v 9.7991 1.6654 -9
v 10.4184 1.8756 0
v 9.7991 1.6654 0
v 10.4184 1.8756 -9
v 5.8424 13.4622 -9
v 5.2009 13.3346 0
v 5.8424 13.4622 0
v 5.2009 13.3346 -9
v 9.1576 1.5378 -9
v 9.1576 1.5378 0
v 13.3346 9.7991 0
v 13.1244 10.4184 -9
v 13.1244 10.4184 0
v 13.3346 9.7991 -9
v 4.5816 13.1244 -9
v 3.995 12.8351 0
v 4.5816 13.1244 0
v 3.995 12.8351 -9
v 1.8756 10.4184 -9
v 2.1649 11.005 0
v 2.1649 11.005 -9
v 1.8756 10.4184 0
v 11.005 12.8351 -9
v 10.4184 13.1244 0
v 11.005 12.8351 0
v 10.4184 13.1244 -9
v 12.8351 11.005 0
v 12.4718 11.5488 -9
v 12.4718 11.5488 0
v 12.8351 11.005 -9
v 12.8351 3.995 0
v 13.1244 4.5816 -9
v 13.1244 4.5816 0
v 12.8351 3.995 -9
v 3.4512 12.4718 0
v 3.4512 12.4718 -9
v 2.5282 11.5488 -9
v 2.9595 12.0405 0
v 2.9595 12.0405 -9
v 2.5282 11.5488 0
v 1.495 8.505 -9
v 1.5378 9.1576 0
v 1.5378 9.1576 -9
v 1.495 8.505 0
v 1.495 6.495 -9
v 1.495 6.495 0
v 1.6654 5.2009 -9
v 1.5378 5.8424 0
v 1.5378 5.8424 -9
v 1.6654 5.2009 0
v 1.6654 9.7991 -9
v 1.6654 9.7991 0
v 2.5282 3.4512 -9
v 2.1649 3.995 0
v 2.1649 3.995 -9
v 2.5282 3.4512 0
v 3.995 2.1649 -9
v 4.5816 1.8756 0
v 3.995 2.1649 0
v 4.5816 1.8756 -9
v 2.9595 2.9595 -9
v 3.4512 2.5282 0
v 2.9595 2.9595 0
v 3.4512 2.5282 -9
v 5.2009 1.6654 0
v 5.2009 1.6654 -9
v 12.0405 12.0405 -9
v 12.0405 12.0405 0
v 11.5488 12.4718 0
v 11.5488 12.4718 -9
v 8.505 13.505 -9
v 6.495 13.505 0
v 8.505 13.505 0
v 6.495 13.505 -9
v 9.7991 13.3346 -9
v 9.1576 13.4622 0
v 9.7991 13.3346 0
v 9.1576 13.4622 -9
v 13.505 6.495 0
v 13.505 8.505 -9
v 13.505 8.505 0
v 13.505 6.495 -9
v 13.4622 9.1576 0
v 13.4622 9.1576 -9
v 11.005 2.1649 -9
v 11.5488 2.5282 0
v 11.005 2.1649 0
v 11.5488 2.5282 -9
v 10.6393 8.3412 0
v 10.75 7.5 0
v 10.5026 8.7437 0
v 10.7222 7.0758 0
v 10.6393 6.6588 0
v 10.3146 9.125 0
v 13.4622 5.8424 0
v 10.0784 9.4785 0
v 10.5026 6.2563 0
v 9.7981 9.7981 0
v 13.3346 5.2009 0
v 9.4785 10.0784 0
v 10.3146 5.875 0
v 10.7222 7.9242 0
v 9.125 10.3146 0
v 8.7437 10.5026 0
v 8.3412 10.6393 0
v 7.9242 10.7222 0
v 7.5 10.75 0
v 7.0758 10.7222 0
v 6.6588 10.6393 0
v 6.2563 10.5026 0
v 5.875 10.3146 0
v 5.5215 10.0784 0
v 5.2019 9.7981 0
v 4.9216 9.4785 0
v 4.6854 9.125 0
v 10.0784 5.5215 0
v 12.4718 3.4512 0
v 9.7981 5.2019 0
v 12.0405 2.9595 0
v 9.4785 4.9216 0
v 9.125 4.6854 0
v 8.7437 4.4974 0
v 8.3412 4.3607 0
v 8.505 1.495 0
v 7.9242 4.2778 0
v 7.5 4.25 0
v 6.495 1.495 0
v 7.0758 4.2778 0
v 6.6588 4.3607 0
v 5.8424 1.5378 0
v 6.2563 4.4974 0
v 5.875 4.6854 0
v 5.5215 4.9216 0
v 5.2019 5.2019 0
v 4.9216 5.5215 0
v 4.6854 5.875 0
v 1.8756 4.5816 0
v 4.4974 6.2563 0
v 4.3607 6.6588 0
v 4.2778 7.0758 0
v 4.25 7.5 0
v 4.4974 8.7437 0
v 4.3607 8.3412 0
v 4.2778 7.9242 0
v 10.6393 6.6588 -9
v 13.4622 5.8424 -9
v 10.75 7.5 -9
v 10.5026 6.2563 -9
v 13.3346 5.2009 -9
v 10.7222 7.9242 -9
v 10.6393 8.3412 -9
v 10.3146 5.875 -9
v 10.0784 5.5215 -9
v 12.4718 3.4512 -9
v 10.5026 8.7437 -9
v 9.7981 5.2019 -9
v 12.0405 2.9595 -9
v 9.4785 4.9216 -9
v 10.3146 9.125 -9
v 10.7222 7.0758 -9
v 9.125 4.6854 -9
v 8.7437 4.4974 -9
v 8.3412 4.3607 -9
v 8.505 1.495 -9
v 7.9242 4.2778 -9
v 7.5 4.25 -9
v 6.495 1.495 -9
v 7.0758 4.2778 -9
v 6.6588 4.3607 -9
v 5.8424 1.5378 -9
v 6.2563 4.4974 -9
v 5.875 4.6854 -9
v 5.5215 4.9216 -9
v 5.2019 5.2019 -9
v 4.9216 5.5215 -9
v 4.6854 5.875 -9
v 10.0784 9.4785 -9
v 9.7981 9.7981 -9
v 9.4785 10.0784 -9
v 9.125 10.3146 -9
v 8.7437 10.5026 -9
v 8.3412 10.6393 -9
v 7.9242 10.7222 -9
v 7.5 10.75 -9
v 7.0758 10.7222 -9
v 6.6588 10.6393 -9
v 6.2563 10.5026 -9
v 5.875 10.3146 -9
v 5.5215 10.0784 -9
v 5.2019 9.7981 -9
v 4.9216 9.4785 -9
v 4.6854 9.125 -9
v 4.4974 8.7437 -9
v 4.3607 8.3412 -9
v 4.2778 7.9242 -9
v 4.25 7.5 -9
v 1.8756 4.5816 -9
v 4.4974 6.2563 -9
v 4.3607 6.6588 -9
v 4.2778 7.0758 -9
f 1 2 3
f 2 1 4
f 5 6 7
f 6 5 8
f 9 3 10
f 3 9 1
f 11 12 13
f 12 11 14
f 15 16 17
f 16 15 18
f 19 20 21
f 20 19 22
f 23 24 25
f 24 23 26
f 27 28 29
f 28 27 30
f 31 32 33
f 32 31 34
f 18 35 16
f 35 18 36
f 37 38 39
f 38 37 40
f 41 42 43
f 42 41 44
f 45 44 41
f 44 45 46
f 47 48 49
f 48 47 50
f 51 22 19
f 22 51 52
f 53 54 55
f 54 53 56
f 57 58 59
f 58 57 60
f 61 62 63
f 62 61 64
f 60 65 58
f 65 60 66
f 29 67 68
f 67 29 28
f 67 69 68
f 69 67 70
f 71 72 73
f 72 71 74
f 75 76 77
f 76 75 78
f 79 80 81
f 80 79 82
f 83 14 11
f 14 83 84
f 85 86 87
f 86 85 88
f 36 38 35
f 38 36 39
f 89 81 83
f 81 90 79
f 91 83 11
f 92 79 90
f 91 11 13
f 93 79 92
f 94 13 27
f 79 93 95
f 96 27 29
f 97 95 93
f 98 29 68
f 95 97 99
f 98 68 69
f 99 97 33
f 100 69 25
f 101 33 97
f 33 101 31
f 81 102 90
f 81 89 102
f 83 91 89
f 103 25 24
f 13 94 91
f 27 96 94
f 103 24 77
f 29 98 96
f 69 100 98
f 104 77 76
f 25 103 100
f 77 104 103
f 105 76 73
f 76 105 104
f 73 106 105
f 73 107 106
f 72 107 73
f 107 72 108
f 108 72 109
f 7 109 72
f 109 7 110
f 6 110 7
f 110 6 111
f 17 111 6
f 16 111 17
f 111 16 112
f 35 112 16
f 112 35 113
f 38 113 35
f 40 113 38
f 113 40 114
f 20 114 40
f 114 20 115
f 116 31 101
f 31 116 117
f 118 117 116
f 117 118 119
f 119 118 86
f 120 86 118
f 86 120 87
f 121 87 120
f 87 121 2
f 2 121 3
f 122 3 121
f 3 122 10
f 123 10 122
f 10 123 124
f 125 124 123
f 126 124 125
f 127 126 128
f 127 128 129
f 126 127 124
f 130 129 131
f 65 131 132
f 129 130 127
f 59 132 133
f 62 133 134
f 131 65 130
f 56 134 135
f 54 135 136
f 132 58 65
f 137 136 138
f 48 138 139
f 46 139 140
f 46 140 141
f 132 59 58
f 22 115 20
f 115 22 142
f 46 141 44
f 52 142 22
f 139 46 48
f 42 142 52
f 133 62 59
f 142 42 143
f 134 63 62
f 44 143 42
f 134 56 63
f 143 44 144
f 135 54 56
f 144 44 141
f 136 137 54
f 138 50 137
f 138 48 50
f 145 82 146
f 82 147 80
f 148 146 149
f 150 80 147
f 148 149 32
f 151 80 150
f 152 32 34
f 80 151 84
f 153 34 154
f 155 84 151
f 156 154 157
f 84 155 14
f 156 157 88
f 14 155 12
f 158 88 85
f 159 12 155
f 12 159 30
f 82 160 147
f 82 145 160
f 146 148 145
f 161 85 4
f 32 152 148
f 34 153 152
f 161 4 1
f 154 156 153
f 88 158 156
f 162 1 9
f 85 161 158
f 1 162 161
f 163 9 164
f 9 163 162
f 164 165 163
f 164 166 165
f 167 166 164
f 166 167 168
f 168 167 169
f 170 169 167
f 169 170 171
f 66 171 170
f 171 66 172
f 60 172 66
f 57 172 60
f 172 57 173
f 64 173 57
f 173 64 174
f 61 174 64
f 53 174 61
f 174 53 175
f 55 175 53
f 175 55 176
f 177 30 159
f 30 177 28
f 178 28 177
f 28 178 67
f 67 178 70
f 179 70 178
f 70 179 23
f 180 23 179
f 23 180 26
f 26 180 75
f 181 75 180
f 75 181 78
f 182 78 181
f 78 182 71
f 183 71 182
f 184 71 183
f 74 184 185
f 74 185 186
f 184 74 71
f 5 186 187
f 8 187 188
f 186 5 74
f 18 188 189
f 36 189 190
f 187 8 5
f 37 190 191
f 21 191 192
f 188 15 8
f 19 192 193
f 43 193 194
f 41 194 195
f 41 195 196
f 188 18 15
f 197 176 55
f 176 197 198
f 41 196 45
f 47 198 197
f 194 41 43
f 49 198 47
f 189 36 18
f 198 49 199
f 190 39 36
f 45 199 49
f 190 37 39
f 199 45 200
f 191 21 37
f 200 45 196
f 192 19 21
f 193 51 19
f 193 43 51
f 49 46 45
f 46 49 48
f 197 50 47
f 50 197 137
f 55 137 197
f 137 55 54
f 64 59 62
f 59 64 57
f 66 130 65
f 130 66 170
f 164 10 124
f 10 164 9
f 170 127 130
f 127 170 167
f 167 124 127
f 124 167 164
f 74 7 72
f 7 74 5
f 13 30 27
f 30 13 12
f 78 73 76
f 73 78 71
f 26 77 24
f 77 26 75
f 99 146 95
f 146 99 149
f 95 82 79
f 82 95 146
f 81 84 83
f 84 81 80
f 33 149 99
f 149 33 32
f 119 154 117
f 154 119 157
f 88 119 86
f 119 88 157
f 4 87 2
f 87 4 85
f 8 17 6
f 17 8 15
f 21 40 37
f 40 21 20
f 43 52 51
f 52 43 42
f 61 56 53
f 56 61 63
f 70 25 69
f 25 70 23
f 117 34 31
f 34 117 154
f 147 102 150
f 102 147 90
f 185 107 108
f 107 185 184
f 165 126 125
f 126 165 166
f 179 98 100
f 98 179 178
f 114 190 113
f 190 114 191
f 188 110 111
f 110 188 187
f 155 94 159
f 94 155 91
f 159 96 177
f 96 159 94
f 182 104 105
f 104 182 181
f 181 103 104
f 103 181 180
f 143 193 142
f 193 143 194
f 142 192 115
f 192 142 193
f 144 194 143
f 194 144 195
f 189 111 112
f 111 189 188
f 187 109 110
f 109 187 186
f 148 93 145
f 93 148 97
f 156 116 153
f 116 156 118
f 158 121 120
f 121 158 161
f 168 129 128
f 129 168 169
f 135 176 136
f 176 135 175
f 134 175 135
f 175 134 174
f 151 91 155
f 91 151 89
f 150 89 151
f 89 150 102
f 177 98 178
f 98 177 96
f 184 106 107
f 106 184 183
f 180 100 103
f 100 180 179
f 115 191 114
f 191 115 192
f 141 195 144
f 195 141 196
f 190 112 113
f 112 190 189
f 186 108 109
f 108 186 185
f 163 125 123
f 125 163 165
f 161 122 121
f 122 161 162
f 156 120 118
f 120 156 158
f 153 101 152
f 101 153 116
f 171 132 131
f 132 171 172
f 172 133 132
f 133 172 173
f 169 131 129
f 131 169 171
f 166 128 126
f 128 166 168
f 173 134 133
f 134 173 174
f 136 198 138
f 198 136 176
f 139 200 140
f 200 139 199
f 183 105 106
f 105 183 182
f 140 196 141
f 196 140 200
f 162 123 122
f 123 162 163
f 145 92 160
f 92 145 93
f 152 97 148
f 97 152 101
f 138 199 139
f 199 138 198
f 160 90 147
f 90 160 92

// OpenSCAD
// Generated by SolidPython 1.1.3 on 2022-09-14 11:03:16
$fn = 48;


difference() {
	union() {
		color(alpha = 1.0000000000, c = "Gold") {
			translate(v = [7.5000000000, 7.5000000000, 0]) {
				rotate(a = [0, 0, 0]) {
					translate(v = [0, 0, -9]) {
						linear_extrude(height = 9) {
							offset(r = 5) {
								square(center = true, size = [2.0100000000, 2.0100000000]);
							}
						}
					}
				}
			}
		}
	}
	union() {
		color(alpha = 1.0000000000, c = "Gold") {
			translate(v = [7.5000000000, 7.5000000000, 0]) {
				rotate(a = [0, 0, 0]) {
					translate(v = [0, 0, -250]) {
						cylinder(h = 500, r = 3.2500000000);
					}
				}
			}
		}
	}
}
/***********************************************
*********      SolidPython code:      **********
************************************************
 
import subprocess

from solid.objects import *
from solid import scad_render_to_file, scad_render

import os

##################################################################################################################################################
##################################################################################################################################################
##################################################################################################################################################
##################################################################################################################################################
######  DIMENSION STUFF
##################################################################################################################################################
##################################################################################################################################################
##################################################################################################################################################
##################################################################################################################################################


mode = "3DPR"
#mode = "LAZE"
#mode = "TURE"
#mode = ""


######  Countersunk
countersunkM = []
WIDTH = 0
DEPTH = 1
countersunkM1width = 0; countersunkM1depth = 0; countersunkM2width = 0; countersunkM2depth = 0
countersunkM3width = 0
countersunkM3depth = 0
countersunkM4width = 0
countersunkM4depth = 0
countersunkM5width = 0
countersunkM5depth = 0
countersunkM6width = 0
countersunkM6depth = 0

######  Holes
holeM = []
holeM1 = 0
holeM2 = 0
holeM3 = 0
holeM4 = 0
holeM5 = 0
holeM6 = 0

######  Nuts
nutM = []
NUTWIDTH = 0
NUTDEPTH = 1
nutM1width = 0
nutM1depth = 0
nutM2width = 0
nutM2depth = 0
nutM3width = 0
nutM3depth = 0
nutM4width = 0
nutM4depth = 0
nutM5width = 0
nutM5depth = 0
nutM6width = 0
nutM6depth = 0

######  OOEB
ooebPinWidth = 0
ooebPinWidthWide = 0


######  Colors
colDefault = "Gold"

colOOEBbase = colDefault

colLEDRed = "red"
colWire = "gray"
    ######  Resistor
colRes = list()
colResistor = "beige"

colResBlack = "black"
colRes.append(colResBlack)
colResBrown = "brown"
colRes.append(colResBrown)
colResRed = "red"
colRes.append(colResRed)
colResOrange = "orange"
colRes.append(colResOrange)
colResYellow = "yellow"
colRes.append(colResYellow)
colResGreen = "green"
colRes.append(colResGreen)
colResBlue = "blue"
colRes.append(colResBlue)
colResPurple = "purple"
colRes.append(colResPurple)
colResGray = "gray"
colRes.append(colResGray)
colResWhite = "white"
colRes.append(colResWhite)





def changeMode(m="3DPR"):
    #print("####################################################      CHANGING MODES TO: " + m)
    global mode
    mode = m
    ######  Countersunk
    global countersunkM, countersunkM1width, countersunkM1depth, countersunkM2width, countersunkM2depth, countersunkM3width, countersunkM3depth, countersunkM4width, countersunkM4depth, countersunkM5width, countersunkM5depth, countersunkM6width, countersunkM6depth
    countersunkM = []
    countersunkM.append([0,0])
    countersunkM1width = 0 if mode== "3DPR" else 0
    countersunkM1depth = 0 if mode== "3DPR" else 0
    countersunkM.append([countersunkM1width,countersunkM1depth])
    countersunkM2width = 0 if mode== "3DPR" else 0
    countersunkM2depth = 0 if mode== "3DPR" else 0
    countersunkM.append([countersunkM2width,countersunkM2depth])
    countersunkM3width = 5.5/2+0.6 if mode== "3DPR" else 5.5/2
    countersunkM3depth = 1.7 if mode== "3DPR" else 1.7
    countersunkM.append([countersunkM3width,countersunkM3depth])
    countersunkM4width = 0 if mode== "3DPR" else 0
    countersunkM4depth = 0 if mode== "3DPR" else 0
    countersunkM.append([countersunkM4width,countersunkM4depth])
    countersunkM5width = 0 if mode== "3DPR" else 0
    countersunkM5depth = 0 if mode== "3DPR" else 0
    countersunkM.append([countersunkM5width,countersunkM5depth])
    countersunkM6width = 0 if mode== "3DPR" else 0
    countersunkM6depth = 0 if mode== "3DPR" else 0
    countersunkM.append([countersunkM6width,countersunkM6depth])
    ######  Holes
    global holeM, holeM1, holeM2, holeM3, holeM4, holeM5, holeM6, holeM7, holeM8
    holeM = []
    holeM1 = 1.2/2 if mode== "3DPR" else 1/2
    holeM2 = 2.3/2 if mode== "3DPR" else 2/2
    holeM3 = 3.4/2 if mode== "3DPR" else 3/2
    holeM4 = 4.4/2 if mode== "3DPR" else 4/2
    holeM5 = 5.4/2 if mode== "3DPR" else 5/2
    holeM6 = 6.5/2 if mode== "3DPR" else 6/2
    holeM7 = 7.5/2 if mode== "3DPR" else 7/2
    holeM8 = 8.6/2 if mode== "3DPR" else 8/2
    holeM.append(0)
    holeM.append(holeM1)
    holeM.append(holeM2)
    holeM.append(holeM3)
    holeM.append(holeM4)
    holeM.append(holeM5)
    holeM.append(holeM6)
    holeM.append(holeM7)
    holeM.append(holeM8)
    #####  Nuts
    global nutM, nutM1width, nutM1depth, nutM2width, nutM2depth, nutM3width, nutM3depth, nutM4width, nutM4depth, nutM5width, nutM5depth, nutM6width, nutM6depth
    nutM = []
    nutM.append([0,0]) 
    #M1 Nut
    nutM1width = 0
    nutM1depth = 0
    nutM.append([nutM1width,nutM1depth])    
    #M2 Nut
    nutM2width = 0
    nutM2depth = 0
    nutM.append([nutM2width,nutM2depth])    
    #M3 Nut
    nutM3width = 6.05 if mode== "3DPR" else 5.5
    nutM3depth = 2.5 if mode== "3DPR" else 2.5
    nutM.append([nutM3width,nutM3depth])    
    #M4 Nut
    nutM4width = 0
    nutM4depth = 0
    nutM.append([nutM4width,nutM4depth])    
    #M5 Nut
    nutM5width = 0
    nutM5depth = 0
    nutM.append([nutM5width,nutM5depth])    
    #M6 Nut
    nutM6width = 11 if mode== "3DPR" else 10
    nutM6depth = 5 if mode== "3DPR" else 5
    nutM.append([nutM6width,nutM6depth])    

    ######  OOEB
    global ooebPinWidth,  ooebPinWidthWide

    ooebPinWidth = 0.6
    if(mode=="3DPR" or mode=="LAZE"):
        ooebPinWidth = 0.6 + 0.6
    ooebPinWidthWide = 1.2
    if(mode=="3DPR" or mode=="LAZE"):
        ooebPinWidthWide = 1.2 + 0.6


changeMode()


""""    
holeM12D = s=="3DPR" ? 1.4/2 : 1.2/2;
holeM16D = s=="3DPR" ? 1.8/2 : 1.6/2;
holeM2 = s=="3DPR" ? 2.3/2 : 2/2;
holeM25D = s=="3DPR" ? 2.8/2 : 2.5/2;
holeM27D = s=="3DPR" ? 3.1/2 : 2.7/2;    
holeM3 = s=="3DPR" ? 3.4/2 : 3/2;
holeM35D = s=="3DPR" ? 3.9/2 : 35/2;
holeM4 = s=="3DPR" ? 4.4/2 : 4/2;
holeM5 = s=="3DPR" ? 5.4/2 : 5/2;
holeM6 = s=="3DPR" ? 6.5/2 : 6/2;
holeM6Minus = s=="3DPR" ? 5.8/2 : 5.9/2;
holeM7 = s=="3DPR" ? 7.5/2 : 7/2;
holeM8 = s=="3DPR" ? 8.6/2 : 8/2;
holeM9 = s=="3DPR" ? 9.6/2 : 9/2;
holeM10 = s=="3DPR" ? 10.6/2 : 10/2;
holeM11 = s=="3DPR" ? 11.6/2 : 11/2;
holeM12 = s=="3DPR" ? 12.6/2 : 12/2;
holeM13 = s=="3DPR" ? 13.6/2 : 13/2;
holeM14 = s=="3DPR" ? 14.6/2 : 14/2;
holeM15 = s=="3DPR" ? 15.6/2 : 15/2;
holeM16 = s=="3DPR" ? 16.6/2 : 16/2;
holeM17 = s=="3DPR" ? 17.6/2 : 17/2;
holeM18 = s=="3DPR" ? 18.6/2 : 18/2;
holeM19 = s=="3DPR" ? 19.6/2 : 19/2;
holeM20 = s=="3DPR" ? 20.6/2 : 20/2;
"""

##################################################################################################################################################
##################################################################################################################################################
##################################################################################################################################################
##################################################################################################################################################
######  REGULAR STUFF
##################################################################################################################################################
##################################################################################################################################################
##################################################################################################################################################
##################################################################################################################################################


def setMode(mode="3DPR"):
    changeMode(mode)

def getMode():
    return mode



def saveToScad(fileName, parts):
    dir =  os.path.dirname(os.path.abspath(fileName))
    Path(dir).mkdir(parents=True, exist_ok=True)
    file_out = scad_render_to_file(parts, fileName, file_header=f'$fn = 48;')


def saveToDxf(fileIn, fileOut=""):
    if fileOut == "":
        fileOut = fileIn.replace(".scad",".dxf")
    saveToFile(fileIn, fileOut)
    
def saveToPng(fileIn, fileOut="",extra="--render"):
    if fileOut == "":
        fileOut = fileIn.replace(".scad",".png")
    saveToFile(fileIn, fileOut)

def saveToStl(fileIn, fileOut=""):
    if fileOut == "":
        fileOut = fileIn.replace(".scad",".stl")
    saveToFile(fileIn, fileOut)
    
def saveToSvg(fileIn, fileOut=""):
    if fileOut == "":
        fileOut = fileIn.replace(".scad",".svg")
    saveToFile(fileIn, fileOut)

def saveToFile(fileIn, fileOut,extra=""):
    extra = extra + " --colorscheme Tomorrow"

    launchStr = 'openscad -o "' + fileOut + '"' + extra + ' "' + fileIn + '"'
    print("            saveToFile launch string: " + launchStr)
    subprocess.run(launchStr)
    x=0



def insert(item,pos=[None,None,None],x=0,y=0,z=0,ex=0,size=[None,None,None],length=0,rot=[None,None,None],rotX=0,rotY=0,rotZ=0,width=0,height=0,depth=100,rad=0,rad2=0,color=colDefault,alpha=1,OOwidth=0,OOheight=0,holes=True,negative=True, name=""):
    return OPSCInsert(item,pos,x,y,z,ex,size,length,rot,rotX,rotY,rotZ,width,height,depth,rad,rad2,color,alpha,OOwidth,OOheight,holes,negative,name)


def OPSCInsert(item,pos=[None,None,None],x=0,y=0,z=0,ex=0,size=[None,None,None],length=0,rot=[None,None,None],rotX=0,rotY=0,rotZ=0,width=0,height=0,depth=100,rad=0,rad2=0,col=colDefault,alpha=1,OOwidth=0,OOheight=0,holes=True,negative=True, name=""):
    
    """
        color(color,alpha){
            translate([x,y,z]){
                    rotate([rotX,rotY,rotZ]){
    """
    returnValue = ""

    #print(pos)

    if pos[0] != None:
        x=pos[0]
        y=pos[1]
        z=pos[2]
    if rot[0] != None:
        rotX=rot[0]
        rotY=rot[1]
        rotZ=rot[2]
    
    returnValue = color(col)(translate((x,y,z))(
                            rotate((rotX,rotY,rotZ))(
                                OPSCInsertIf(item,pos,x,y,z,ex,size,length,rot,rotX,rotY,rotZ,width,height,depth,rad,rad2,col,alpha,OOwidth,OOheight,holes,negative,name)
                            )
                        ))
                
    

    return returnValue

def OPSCInsertIf(item,pos=[None,None,None],x=0,y=0,z=0,ex=0,size=[None,None,None],length=0,rot=[None,None,None],rotX=0,rotY=0,rotZ=0,width=0,height=0,depth=100,rad=0,rad2=0,color=colDefault,alpha=1,OOwidth=0,OOheight=0,holes=True,negative=True, name=""):
    returnValue = cube([10,10,10])

    if size[0] != None:
        width=size[0]
        height=size[1]
        depth=size[2]

    #print("    OPSCInsert item:" + str(item) + " at:[" + str(x) + "," + str(y) + "," + str(z) + "] size: [" + str(width) + "," + str(height) + "," + str(depth) + "]")

    if(item=="cube"):
        returnValue =  translate([0,0,-depth/2])(cube([width,height,depth],center=True))
    elif(item=="cylinder"):        
        returnValue = translate([0,0,-depth/2])(cylinder(r=rad,h=depth,center=True))
    elif(item=="sphere"):        
        returnValue = translate([0,0,-rad])(sphere(r=rad))
    elif(item=="plane"):
        if depth == 100:
            returnValue = insert("cube",size=[1000,1000,0.1],color=color)            
        else:
            returnValue = insert("cube",size=[1000,1000,depth],color=color)                        
    elif(item=="cubeRounded"):
        if(rad == 0):
                            rad = 5
        returnValue =  translate([0,0,-depth])(
                        linear_extrude(height=depth)(                        
                            offset(r=rad)(
                                square((width-rad*2+.01,height-rad*2+.01),center=True)
                                )
                            )
        )
    ######  Countersunk
    elif(item == "countersunkM1" or item == "csM1" ):
        returnValue = OSPCgetCountersunk(rad=1)
    elif(item == "countersunkM2" or item == "csM2" ):
        returnValue = OSPCgetCountersunk(rad=2)
    elif(item == "countersunkM3" or item == "csM3" ):
        returnValue = OSPCgetCountersunk(rad=3)
    elif(item == "countersunkM4" or item == "csM4" ):
        returnValue = OSPCgetCountersunk(rad=4)
    elif(item == "countersunkM5" or item == "csM5" ):
        returnValue = OSPCgetCountersunk(rad=5)
    elif(item == "countersunkM6" or item == "csM6" ):
        returnValue = OSPCgetCountersunk(rad=6)
    elif(item == "countersunk" or item == "cs"):
        returnValue = OSPCgetCountersunk(rad=rad)


    ######  Holes    
    elif(item == "holeM1"):
        returnValue = OSPCgetHole(rad=1)
    elif(item == "holeM2"):
        returnValue = OSPCgetHole(rad=2)
    elif(item == "holeM3"):
        returnValue = OSPCgetHole(rad=3)
    elif(item == "holeM4"):
        returnValue = OSPCgetHole(rad=4)
    elif(item == "holeM5"):
        returnValue = OSPCgetHole(rad=5)
    elif(item == "holeM6"):
        returnValue = OSPCgetHole(rad=6)
    elif(item == "hole"):
        returnValue = OSPCgetHole(rad=rad)

    ######  Nuts
    elif(item == "nutM1"):
        returnValue = OSPCgetNut(rad=1,depth=depth)
    elif(item == "nutM2"):
        returnValue = OSPCgetNut(rad=2,depth=depth)
    elif(item == "nutM3"):
        returnValue = OSPCgetNut(rad=3,depth=depth)
    elif(item == "nutM4"):
        returnValue = OSPCgetNut(rad=4,depth=depth)
    elif(item == "nutM5"):
        returnValue = OSPCgetNut(rad=5,depth=depth)
    elif(item == "nutM6"):
        returnValue = OSPCgetNut(rad=6,depth=depth)
    elif(item == "nut"):
        returnValue = OSPCgetNut(rad=rad,depth=depth)
    return returnValue

                

def OSPCgetHole(rad):
    return translate([0,0,-250])(cylinder(r=holeM[rad],h=500))

def OSPCgetNut(rad,depth):
    depth = nutM[rad][NUTDEPTH] if depth==100 else depth
    returnValue = OPSChexagon(nutM[rad][NUTWIDTH],depth=depth)
    return returnValue

def OSPCgetCountersunk(rad):
    depth=countersunkM[rad][DEPTH]
    returnValue = translate([0,0,-depth])(cylinder(h=depth,r2=countersunkM[rad][WIDTH],r1=holeM[rad]))
    return returnValue

def OPSChexagon(width,depth):
    cutter = item()
    wid=width*2
    cutter.addPos(insert("cube",pos=[wid/2+width/2,0,0],size=[wid,wid,depth]))
    cutter.addPos(insert("cube",pos=[-wid/2-width/2,0,0],size=[wid,wid,depth]))

    cut = cutter.getPart()
    #print(depth)
    returnValue = difference()(
        translate([0,0,-depth/2])(cube([wid,wid,depth],center=True)),
        cut,
        rotate([0,0,60])(cut),
        rotate([0,0,-60])(cut)
    )

    return returnValue




class item:

    def __init__(self):
        self.posItems=list()
        self.negItems=list()

    def isEmpty(self):        
        testString = scad_render(self.getPart())
        #print("test String length: " + str(len(testString)))
        returnValue = False
        if len(testString) == 270:            
            returnValue = True
        return returnValue

    def addPos(self,part):
        self.posItems.append(part)
    def addNeg(self,part):
        self.negItems.append(part)

    def getPart(self):
        returnValue = difference()(
            union()(self.posItems),
            union()(self.negItems)
        )
        return returnValue

    def getLaser(self,start=0,layers=1,thickness=-3,tileDif=200):
        rv= []

        for x in range(layers):
            rv.append(translate([0,x*tileDif,0])(
                    projection()(
                        intersection()(
                            insert("plane",z=start+x*thickness),
                            self.getPart()
                        )
                    )
            )
            )
        return union()(rv)

    def getSplit(self,start=0,depth=6,tileDif=200):
        rv= []

        rv.append(translate([0,0,0])(
            intersection()(
                insert("cube",size=[100,100,depth],z=start),
                self.getPart()
            )
        )
        )

        rv.append(translate([0,tileDif,depth])(
            intersection()(
                insert("cube",size=[100,100,depth],z=start-depth),
                self.getPart()
            )
        )
        )        
        return union()(rv)


 
 
************************************************/
